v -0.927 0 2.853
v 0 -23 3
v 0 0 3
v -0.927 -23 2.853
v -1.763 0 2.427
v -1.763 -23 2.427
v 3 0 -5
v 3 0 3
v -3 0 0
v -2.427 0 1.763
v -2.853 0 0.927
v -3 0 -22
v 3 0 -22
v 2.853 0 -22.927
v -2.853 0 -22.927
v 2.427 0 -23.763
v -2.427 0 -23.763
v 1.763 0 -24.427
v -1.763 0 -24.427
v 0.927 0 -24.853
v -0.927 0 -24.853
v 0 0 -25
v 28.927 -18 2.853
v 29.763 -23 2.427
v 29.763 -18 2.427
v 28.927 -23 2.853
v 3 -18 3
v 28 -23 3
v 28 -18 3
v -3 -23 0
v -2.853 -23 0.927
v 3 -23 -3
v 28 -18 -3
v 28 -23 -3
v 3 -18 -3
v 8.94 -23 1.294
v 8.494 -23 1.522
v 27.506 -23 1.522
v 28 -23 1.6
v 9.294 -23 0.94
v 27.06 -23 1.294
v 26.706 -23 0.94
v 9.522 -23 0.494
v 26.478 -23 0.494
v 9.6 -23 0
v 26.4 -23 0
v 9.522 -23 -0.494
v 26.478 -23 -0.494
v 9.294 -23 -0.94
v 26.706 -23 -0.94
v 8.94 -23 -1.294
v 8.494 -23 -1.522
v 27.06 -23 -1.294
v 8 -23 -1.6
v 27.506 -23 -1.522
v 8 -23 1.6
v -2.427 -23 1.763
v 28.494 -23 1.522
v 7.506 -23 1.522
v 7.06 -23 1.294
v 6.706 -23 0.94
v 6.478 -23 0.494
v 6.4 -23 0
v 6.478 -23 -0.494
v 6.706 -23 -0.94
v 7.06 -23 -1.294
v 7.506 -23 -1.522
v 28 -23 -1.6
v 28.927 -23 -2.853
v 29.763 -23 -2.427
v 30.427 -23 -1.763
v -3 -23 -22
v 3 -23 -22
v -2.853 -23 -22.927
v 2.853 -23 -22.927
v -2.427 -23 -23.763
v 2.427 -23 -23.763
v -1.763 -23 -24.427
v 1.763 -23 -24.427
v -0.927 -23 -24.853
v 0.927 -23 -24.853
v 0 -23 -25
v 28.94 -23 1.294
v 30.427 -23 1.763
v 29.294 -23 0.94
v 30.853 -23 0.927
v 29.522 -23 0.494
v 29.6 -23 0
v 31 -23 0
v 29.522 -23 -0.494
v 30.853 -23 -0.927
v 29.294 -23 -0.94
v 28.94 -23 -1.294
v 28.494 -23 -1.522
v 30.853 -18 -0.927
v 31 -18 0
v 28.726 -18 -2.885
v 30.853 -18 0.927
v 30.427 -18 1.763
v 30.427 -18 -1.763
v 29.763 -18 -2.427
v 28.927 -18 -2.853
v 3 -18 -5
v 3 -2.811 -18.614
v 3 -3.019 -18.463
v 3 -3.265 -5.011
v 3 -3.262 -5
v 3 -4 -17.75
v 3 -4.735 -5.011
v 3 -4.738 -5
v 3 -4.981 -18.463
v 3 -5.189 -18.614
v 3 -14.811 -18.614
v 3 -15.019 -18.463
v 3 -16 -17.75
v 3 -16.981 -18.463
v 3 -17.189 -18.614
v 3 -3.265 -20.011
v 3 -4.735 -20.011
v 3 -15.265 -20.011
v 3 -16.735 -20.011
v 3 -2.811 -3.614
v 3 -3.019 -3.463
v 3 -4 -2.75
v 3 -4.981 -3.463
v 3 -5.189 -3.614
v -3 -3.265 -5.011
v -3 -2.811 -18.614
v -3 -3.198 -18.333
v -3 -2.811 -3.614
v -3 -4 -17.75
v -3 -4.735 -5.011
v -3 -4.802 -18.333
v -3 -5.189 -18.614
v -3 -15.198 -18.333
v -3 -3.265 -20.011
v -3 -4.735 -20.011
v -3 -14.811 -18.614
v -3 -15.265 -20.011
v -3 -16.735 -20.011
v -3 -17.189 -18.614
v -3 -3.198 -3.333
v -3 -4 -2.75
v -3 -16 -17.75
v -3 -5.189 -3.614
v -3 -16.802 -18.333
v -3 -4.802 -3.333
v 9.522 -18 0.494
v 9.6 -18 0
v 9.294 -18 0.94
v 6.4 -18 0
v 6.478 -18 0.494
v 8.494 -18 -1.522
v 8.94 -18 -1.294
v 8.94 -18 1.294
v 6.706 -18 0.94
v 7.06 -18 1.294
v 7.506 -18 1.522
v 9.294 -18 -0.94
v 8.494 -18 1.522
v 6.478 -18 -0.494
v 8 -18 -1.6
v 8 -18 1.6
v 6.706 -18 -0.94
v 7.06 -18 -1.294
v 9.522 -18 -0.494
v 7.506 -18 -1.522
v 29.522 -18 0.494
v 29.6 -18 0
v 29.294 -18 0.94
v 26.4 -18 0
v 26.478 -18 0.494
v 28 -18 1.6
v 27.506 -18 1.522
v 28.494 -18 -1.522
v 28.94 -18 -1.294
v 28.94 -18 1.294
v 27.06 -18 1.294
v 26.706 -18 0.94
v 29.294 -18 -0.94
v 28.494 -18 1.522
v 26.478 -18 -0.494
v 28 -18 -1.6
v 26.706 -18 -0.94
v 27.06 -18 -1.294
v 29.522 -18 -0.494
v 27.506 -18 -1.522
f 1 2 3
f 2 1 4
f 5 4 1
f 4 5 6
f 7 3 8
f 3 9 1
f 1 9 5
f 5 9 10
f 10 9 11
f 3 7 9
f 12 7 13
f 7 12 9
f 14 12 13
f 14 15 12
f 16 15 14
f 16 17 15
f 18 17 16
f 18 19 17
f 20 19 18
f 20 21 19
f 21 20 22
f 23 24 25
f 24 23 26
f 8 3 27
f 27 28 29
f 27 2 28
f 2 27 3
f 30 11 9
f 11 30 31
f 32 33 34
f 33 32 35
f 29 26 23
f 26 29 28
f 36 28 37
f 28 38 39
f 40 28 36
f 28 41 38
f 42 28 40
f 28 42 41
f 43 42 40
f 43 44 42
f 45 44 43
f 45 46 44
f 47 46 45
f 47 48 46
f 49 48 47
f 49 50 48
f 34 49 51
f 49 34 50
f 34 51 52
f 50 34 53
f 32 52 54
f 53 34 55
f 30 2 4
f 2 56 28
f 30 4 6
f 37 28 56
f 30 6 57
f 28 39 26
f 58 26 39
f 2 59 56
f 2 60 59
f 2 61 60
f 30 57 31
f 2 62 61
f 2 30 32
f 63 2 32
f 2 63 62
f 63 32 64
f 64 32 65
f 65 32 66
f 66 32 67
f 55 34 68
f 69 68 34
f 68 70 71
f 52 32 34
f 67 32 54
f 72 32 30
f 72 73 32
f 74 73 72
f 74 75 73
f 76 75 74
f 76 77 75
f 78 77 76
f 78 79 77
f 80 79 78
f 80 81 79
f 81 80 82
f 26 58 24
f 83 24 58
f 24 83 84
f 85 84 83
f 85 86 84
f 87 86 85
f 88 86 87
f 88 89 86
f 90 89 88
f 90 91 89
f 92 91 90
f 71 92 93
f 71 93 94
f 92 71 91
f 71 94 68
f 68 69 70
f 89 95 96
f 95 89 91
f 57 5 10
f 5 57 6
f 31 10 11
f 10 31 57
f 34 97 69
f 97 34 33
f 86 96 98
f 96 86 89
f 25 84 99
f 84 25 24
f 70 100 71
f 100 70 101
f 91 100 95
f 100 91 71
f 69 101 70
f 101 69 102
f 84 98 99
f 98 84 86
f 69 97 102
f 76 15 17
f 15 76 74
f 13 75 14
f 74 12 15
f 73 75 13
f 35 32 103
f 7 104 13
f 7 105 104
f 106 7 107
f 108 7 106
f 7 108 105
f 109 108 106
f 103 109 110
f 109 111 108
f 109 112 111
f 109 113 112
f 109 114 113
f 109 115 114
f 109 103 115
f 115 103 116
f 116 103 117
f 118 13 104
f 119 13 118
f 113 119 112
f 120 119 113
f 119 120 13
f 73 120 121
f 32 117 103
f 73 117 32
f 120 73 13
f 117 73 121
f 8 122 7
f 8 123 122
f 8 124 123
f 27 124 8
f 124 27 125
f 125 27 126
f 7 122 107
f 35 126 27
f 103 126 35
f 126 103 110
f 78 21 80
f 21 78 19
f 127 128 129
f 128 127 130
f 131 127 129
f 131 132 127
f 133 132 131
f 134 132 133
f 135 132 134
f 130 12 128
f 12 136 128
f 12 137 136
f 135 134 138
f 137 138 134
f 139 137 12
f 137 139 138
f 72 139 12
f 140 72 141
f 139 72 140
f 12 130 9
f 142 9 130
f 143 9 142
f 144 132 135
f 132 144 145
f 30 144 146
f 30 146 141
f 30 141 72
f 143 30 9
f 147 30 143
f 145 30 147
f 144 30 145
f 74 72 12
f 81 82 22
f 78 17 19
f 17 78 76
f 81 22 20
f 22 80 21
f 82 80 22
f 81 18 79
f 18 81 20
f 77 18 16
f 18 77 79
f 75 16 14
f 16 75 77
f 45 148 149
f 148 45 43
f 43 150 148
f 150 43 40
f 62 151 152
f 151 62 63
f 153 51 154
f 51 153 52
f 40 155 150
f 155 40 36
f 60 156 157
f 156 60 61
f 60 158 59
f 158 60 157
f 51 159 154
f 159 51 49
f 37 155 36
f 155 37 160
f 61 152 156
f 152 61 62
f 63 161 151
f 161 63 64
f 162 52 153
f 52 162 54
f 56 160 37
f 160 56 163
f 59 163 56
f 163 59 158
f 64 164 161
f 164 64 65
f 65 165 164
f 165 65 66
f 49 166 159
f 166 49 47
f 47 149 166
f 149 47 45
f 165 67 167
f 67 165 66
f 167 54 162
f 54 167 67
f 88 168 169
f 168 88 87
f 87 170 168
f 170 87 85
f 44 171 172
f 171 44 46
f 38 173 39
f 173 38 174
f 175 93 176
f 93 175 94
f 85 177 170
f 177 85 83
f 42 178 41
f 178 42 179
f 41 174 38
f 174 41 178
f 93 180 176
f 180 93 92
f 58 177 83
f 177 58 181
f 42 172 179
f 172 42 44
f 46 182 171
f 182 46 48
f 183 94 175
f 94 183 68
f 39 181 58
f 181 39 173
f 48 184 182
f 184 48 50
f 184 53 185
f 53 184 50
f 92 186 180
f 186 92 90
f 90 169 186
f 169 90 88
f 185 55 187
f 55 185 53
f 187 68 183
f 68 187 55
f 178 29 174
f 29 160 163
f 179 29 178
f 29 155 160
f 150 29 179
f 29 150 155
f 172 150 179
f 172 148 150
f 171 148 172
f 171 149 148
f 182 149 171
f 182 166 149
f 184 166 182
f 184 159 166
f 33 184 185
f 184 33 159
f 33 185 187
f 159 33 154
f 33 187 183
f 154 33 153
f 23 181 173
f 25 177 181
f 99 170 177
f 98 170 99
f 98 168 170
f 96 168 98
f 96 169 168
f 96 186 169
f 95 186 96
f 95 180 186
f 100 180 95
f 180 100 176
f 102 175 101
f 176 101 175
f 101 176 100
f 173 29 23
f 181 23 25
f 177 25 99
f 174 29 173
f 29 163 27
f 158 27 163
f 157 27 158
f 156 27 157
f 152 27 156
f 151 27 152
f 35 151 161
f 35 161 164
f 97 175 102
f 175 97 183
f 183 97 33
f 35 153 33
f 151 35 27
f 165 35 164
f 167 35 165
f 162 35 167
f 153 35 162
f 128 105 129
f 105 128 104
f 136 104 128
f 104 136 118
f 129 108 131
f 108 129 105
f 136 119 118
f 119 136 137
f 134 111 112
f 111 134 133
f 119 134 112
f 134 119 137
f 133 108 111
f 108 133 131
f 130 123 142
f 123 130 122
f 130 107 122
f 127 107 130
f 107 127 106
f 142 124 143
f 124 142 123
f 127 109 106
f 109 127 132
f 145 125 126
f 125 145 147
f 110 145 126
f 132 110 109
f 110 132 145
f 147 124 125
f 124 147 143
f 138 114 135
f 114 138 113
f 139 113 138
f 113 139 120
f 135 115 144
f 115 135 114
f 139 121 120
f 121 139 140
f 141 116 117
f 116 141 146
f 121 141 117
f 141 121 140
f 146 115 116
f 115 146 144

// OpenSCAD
/**
 Layer Fan Holder
 
 Created by Diego Viejo
 
 27/Sept/2019

 
 This file contains parts needed for attaching a layer fan to a DDG bondtech extruder with a
 mosquito hotend. The idea is to use mosquito fan back holes to attach it.
 
*/

MosquitoHolesDist = 20;
MosquitoHeight = 47;
MosquitoLength = 13;

// Part1. Using a BQ layer fan

BQHorDist = 12;
BQVertDist = 15;
BQLowerDist = 28;
BQLength = MosquitoLength+5;

extraWidth = 8;

module BQHolder()
difference()
{
    union()
    {
        hull()
        {
            rotate([90, 0, 0]) cylinder(d=6, h=BQLength+5, $fn=20);
            #translate([MosquitoHolesDist+extraWidth, 0, 0]) rotate([90, 0, 0]) cylinder(d=6, h=BQLength+5, $fn=20);
        }
        hull()
        {
            rotate([90, 0, 0]) cylinder(d=6, h=BQLength+5, $fn=20);
            translate([0, 0, -MosquitoHeight+BQLowerDist-3]) rotate([90, 0, 0]) cylinder(d=6, h=BQLength+5, $fn=20);
        }
    }
    
    //Mosquito attachment
    rotate([90, 0, 0]) translate([extraWidth, 0, -10]) cylinder(d=3.2, h=BQLength + 20, $fn=20);
    rotate([90, 0, 0]) translate([MosquitoHolesDist+extraWidth, 0, -10]) cylinder(d=3.2, h=BQLength+20, $fn=20);

    //mosquito core
    translate([3, -BQLength, -5]) cube([30, BQLength+2, 10]);
    
    //bqFanHoles
    #translate([10, -4, -MosquitoHeight+BQLowerDist]) rotate([0, -90, 0]) cylinder(d=2.5, h=40);
    #translate([10, -4, -MosquitoHeight+BQLowerDist+BQVertDist]) rotate([0, -90, 0]) cylinder(d=2.5, h=40);
    #translate([10, -4-BQHorDist, -MosquitoHeight+BQLowerDist]) rotate([0, -90, 0]) cylinder(d=2.5, h=40);
}

BQHolder();
